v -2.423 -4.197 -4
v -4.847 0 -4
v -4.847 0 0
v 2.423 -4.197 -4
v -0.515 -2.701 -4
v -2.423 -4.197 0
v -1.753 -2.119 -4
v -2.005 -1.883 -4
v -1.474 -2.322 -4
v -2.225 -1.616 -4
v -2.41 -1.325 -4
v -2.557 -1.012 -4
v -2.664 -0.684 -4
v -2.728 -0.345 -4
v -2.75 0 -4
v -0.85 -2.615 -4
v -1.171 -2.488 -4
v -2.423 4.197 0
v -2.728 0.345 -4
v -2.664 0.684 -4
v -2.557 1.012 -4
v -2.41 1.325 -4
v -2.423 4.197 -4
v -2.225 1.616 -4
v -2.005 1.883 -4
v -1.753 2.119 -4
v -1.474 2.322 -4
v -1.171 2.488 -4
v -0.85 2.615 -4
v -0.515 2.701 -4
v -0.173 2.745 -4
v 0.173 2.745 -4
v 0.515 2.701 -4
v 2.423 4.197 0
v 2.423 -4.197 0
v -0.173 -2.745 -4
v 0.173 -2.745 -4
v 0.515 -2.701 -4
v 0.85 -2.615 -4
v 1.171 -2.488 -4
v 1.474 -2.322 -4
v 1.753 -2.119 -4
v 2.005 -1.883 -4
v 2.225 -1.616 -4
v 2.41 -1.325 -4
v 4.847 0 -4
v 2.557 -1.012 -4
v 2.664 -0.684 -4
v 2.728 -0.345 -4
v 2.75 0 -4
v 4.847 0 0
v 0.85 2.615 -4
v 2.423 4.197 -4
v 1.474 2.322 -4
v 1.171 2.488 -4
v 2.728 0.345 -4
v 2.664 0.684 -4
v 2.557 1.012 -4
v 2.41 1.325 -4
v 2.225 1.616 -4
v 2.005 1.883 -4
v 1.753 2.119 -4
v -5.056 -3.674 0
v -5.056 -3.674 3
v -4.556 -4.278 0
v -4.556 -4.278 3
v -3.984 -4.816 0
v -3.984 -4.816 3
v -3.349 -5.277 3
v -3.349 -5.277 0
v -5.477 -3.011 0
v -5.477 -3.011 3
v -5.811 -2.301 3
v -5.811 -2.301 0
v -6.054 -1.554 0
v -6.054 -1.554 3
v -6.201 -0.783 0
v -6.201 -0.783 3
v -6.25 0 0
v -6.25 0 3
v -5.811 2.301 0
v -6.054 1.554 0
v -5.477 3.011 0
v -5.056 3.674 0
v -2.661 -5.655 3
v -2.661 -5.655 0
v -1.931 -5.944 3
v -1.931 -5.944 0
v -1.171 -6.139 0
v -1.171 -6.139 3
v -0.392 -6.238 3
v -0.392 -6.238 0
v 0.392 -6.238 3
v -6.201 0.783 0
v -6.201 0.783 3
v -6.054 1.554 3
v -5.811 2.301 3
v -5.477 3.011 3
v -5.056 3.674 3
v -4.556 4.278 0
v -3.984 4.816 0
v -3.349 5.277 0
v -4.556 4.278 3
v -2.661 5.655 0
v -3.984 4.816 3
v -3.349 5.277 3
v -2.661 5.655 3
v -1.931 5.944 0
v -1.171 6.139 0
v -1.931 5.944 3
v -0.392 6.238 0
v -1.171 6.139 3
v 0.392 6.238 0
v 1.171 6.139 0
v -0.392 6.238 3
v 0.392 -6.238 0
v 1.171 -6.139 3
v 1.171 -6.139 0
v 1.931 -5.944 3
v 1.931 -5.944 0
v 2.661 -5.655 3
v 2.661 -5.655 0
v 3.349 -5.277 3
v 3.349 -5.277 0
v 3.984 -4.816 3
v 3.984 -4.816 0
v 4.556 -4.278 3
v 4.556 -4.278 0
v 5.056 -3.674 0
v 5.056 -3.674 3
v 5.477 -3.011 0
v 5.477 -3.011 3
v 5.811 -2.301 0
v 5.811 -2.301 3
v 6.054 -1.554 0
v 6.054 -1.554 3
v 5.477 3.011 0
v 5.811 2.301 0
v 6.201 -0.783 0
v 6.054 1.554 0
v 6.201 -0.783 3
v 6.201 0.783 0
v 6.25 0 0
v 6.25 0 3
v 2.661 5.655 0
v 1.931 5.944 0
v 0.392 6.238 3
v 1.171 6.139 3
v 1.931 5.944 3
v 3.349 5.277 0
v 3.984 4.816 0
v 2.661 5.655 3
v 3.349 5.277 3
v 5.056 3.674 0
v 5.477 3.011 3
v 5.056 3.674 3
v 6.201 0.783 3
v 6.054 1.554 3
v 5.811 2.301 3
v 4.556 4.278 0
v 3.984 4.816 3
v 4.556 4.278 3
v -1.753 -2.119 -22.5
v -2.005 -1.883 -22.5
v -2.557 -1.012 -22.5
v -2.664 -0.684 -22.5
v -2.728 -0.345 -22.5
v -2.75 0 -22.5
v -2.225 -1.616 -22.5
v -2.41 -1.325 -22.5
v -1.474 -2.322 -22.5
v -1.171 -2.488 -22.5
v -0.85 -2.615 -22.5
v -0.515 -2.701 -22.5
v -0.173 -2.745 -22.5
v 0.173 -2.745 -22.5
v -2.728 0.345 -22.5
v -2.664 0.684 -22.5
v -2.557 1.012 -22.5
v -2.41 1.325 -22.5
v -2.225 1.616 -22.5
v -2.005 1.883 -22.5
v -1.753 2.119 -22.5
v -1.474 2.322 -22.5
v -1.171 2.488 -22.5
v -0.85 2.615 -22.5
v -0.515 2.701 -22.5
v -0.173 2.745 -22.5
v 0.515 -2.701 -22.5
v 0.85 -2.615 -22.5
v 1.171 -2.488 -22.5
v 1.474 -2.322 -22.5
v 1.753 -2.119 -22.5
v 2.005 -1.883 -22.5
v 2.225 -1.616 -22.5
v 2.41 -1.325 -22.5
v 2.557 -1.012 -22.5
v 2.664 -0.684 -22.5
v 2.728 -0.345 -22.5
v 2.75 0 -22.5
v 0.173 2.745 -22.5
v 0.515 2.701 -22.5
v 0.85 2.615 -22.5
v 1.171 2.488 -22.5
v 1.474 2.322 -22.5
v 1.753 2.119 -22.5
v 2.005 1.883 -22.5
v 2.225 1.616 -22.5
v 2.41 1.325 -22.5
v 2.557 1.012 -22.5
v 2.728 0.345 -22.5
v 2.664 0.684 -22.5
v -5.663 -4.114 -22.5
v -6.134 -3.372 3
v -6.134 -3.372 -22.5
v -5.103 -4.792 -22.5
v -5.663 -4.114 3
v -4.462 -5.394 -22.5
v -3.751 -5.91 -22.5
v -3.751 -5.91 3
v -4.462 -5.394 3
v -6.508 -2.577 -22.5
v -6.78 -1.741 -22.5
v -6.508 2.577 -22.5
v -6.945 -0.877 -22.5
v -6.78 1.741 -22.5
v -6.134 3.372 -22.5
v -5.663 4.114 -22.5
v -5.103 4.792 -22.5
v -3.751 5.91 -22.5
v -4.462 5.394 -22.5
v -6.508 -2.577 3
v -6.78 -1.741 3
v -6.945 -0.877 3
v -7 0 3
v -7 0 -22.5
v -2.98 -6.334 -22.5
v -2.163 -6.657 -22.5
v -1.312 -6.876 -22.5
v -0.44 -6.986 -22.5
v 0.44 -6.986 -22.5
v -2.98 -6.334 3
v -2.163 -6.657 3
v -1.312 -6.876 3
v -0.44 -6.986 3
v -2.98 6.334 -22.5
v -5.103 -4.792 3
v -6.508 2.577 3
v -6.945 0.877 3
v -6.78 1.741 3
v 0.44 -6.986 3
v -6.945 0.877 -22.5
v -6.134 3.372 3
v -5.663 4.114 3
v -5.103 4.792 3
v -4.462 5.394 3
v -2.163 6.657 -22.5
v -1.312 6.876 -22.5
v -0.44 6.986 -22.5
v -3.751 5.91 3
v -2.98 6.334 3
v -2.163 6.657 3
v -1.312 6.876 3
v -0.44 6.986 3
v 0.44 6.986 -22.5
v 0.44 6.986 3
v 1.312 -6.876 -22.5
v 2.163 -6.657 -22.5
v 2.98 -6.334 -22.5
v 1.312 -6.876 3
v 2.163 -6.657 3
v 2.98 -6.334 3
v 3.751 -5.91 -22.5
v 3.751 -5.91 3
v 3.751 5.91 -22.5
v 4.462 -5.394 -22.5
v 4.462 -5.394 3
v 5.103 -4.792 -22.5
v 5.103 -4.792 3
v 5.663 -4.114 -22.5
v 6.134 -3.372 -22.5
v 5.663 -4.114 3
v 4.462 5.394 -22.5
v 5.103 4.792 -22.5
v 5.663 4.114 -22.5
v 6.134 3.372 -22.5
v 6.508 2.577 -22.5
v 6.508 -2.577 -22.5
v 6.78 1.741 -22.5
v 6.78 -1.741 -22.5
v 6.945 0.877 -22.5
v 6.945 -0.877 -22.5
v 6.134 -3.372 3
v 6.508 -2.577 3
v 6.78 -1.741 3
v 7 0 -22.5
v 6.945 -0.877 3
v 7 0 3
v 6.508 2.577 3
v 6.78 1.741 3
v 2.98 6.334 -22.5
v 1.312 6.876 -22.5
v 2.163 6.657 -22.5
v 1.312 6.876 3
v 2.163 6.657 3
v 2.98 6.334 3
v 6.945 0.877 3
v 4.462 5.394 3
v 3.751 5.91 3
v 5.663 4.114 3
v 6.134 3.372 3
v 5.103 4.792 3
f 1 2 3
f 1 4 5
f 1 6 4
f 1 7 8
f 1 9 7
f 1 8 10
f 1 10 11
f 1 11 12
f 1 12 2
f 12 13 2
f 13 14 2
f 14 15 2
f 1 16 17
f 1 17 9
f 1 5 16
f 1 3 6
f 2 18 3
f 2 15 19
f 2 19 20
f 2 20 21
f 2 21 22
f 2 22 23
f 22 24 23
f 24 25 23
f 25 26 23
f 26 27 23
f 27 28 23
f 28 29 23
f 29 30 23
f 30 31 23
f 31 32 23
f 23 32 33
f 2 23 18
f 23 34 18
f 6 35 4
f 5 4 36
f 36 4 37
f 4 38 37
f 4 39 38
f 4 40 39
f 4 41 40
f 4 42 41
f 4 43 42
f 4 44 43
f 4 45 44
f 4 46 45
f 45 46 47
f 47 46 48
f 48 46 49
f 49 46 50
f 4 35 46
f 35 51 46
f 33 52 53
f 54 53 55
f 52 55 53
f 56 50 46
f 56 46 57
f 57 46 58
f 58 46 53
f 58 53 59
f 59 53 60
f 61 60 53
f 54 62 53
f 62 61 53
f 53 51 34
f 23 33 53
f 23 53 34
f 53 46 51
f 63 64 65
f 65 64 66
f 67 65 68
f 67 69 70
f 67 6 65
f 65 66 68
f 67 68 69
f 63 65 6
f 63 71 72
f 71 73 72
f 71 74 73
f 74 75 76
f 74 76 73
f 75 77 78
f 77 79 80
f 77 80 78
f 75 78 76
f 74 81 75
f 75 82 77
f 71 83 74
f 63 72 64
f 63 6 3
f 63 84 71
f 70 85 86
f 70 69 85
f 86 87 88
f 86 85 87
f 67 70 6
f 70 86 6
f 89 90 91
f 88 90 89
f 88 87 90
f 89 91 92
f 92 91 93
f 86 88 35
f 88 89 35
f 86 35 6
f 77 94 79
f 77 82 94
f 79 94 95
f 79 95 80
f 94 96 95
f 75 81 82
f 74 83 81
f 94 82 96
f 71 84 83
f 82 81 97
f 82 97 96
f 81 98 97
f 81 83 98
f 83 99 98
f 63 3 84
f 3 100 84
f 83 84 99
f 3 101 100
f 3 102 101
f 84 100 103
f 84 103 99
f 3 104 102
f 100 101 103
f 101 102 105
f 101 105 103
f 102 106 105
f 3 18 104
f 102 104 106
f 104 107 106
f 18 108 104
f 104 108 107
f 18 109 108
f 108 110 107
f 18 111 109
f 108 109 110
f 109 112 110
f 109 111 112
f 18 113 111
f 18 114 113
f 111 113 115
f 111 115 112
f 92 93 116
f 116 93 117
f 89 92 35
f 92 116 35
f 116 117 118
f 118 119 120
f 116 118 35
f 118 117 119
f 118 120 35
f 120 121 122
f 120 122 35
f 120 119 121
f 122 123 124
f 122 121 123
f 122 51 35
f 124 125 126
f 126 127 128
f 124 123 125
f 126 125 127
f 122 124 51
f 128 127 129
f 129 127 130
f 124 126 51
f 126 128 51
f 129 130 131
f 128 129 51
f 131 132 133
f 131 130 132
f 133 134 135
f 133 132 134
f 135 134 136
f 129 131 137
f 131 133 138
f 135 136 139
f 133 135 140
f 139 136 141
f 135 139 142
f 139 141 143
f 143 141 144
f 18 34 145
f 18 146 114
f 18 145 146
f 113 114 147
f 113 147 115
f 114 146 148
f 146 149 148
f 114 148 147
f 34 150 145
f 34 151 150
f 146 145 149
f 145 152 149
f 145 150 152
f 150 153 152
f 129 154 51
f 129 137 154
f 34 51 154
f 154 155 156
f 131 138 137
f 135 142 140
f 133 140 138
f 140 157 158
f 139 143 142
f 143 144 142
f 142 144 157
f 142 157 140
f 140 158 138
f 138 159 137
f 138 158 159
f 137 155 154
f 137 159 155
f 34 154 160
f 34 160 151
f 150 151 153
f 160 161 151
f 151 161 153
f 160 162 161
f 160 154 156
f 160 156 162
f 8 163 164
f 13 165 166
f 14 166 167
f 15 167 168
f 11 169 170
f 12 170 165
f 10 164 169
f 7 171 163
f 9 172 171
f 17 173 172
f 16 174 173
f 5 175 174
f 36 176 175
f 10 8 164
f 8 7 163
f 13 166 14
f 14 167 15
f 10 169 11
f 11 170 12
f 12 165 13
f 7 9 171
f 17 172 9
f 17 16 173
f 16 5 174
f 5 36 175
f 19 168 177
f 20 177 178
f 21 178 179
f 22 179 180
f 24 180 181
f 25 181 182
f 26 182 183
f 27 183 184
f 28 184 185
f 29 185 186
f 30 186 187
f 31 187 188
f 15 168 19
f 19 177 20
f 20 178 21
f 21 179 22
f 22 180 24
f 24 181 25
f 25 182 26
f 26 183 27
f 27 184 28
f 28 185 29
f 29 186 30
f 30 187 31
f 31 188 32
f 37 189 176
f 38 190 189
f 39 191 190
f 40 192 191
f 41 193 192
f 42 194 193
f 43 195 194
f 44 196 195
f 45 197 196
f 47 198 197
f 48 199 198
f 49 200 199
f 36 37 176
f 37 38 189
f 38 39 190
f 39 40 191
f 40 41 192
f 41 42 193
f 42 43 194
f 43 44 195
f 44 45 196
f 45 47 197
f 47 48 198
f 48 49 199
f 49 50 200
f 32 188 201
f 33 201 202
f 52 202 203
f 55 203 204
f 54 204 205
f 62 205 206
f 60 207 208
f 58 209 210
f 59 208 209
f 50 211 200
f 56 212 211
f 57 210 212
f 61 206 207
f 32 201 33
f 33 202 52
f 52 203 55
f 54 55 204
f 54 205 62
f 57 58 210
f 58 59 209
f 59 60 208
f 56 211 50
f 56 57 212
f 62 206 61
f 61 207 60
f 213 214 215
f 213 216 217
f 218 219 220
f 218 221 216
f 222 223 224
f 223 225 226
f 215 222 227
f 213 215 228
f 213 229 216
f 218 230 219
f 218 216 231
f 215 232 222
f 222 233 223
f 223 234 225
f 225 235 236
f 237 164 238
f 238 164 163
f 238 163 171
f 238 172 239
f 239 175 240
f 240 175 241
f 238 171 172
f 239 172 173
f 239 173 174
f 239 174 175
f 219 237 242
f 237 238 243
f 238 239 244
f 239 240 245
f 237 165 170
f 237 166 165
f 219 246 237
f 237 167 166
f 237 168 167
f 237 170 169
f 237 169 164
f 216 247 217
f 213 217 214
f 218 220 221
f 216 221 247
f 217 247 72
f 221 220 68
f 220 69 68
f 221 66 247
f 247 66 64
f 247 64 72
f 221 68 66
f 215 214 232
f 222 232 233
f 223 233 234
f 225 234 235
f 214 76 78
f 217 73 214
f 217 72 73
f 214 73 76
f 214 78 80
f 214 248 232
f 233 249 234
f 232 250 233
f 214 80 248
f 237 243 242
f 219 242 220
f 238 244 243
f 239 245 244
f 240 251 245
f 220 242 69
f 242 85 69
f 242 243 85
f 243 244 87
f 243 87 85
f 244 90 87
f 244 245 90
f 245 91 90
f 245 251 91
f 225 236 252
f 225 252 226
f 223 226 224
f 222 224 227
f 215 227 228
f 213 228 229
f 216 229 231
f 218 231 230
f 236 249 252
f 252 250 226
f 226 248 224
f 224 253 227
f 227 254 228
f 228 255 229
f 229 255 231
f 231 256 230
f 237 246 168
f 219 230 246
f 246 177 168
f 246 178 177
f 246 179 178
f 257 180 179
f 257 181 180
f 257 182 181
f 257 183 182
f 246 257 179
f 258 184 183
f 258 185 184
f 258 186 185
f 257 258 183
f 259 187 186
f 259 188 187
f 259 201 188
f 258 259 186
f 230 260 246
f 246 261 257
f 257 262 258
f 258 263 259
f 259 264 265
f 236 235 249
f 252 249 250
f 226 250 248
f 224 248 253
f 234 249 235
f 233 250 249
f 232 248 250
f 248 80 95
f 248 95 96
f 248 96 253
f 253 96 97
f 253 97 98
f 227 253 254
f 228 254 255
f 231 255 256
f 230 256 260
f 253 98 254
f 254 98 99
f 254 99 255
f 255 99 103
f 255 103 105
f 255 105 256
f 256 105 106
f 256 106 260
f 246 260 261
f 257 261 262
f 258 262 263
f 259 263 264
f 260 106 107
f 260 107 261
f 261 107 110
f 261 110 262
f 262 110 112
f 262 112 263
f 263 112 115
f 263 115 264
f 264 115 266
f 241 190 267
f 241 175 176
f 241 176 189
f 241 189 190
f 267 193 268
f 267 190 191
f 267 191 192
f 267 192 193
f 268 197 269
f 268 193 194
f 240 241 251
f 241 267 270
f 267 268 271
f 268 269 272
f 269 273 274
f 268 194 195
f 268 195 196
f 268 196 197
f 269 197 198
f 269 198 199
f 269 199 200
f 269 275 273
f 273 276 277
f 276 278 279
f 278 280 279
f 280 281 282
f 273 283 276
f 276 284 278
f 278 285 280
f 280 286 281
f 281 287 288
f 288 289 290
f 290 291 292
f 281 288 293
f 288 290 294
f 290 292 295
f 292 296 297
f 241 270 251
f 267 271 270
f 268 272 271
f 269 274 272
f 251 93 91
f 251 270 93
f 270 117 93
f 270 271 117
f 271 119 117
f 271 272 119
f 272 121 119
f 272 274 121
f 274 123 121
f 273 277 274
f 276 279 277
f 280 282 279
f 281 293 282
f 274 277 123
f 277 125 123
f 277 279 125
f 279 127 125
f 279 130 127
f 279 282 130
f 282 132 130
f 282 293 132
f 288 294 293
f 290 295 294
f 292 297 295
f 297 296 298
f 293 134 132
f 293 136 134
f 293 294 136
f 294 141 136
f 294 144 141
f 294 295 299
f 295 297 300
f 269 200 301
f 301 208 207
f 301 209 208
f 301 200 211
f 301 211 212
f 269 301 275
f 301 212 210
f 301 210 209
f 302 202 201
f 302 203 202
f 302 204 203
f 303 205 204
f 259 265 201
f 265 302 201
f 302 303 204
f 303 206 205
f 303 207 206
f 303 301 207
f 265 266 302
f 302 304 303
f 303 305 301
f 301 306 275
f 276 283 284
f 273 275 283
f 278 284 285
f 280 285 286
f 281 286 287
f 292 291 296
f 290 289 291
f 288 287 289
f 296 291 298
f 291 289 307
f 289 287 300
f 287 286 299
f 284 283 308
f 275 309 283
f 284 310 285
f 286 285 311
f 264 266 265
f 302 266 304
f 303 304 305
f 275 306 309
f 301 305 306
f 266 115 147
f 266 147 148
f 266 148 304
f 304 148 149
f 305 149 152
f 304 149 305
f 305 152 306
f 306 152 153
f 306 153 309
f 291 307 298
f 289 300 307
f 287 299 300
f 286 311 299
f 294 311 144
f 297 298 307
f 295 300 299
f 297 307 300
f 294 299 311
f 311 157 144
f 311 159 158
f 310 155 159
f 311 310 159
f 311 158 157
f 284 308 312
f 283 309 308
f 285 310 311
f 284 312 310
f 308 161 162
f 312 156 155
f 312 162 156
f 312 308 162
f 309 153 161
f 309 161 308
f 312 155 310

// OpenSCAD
$fn = 50;

difference() {
	union() {
		translate(v = [0, 0, -22.5]) {
			cylinder(h = 25.5, r = 7.0);
		}
	}
	union() {
		translate(v = [0, 0, 0]) {
			rotate(a = [0, 0, 0]) {
				difference() {
					union() {
						translate(v = [0, 0, -4]) {
							linear_extrude(height = 4) {
								polygon(points = [[4.8468, 0.0], [2.4234000000000004, 4.197451927062417], [-2.423399999999999, 4.197451927062417], [-4.8468, 5.935618106107392e-16], [-2.423400000000002, -4.197451927062416], [2.423399999999997, -4.197451927062419]]);
							}
						}
					}
					union();
				}
			}
		}
		#cylinder(h = 3, r = 6.25);
		#translate(v = [0, 0, -100.0]) {
			cylinder(h = 200, r = 2.75);
		}
	}
}
